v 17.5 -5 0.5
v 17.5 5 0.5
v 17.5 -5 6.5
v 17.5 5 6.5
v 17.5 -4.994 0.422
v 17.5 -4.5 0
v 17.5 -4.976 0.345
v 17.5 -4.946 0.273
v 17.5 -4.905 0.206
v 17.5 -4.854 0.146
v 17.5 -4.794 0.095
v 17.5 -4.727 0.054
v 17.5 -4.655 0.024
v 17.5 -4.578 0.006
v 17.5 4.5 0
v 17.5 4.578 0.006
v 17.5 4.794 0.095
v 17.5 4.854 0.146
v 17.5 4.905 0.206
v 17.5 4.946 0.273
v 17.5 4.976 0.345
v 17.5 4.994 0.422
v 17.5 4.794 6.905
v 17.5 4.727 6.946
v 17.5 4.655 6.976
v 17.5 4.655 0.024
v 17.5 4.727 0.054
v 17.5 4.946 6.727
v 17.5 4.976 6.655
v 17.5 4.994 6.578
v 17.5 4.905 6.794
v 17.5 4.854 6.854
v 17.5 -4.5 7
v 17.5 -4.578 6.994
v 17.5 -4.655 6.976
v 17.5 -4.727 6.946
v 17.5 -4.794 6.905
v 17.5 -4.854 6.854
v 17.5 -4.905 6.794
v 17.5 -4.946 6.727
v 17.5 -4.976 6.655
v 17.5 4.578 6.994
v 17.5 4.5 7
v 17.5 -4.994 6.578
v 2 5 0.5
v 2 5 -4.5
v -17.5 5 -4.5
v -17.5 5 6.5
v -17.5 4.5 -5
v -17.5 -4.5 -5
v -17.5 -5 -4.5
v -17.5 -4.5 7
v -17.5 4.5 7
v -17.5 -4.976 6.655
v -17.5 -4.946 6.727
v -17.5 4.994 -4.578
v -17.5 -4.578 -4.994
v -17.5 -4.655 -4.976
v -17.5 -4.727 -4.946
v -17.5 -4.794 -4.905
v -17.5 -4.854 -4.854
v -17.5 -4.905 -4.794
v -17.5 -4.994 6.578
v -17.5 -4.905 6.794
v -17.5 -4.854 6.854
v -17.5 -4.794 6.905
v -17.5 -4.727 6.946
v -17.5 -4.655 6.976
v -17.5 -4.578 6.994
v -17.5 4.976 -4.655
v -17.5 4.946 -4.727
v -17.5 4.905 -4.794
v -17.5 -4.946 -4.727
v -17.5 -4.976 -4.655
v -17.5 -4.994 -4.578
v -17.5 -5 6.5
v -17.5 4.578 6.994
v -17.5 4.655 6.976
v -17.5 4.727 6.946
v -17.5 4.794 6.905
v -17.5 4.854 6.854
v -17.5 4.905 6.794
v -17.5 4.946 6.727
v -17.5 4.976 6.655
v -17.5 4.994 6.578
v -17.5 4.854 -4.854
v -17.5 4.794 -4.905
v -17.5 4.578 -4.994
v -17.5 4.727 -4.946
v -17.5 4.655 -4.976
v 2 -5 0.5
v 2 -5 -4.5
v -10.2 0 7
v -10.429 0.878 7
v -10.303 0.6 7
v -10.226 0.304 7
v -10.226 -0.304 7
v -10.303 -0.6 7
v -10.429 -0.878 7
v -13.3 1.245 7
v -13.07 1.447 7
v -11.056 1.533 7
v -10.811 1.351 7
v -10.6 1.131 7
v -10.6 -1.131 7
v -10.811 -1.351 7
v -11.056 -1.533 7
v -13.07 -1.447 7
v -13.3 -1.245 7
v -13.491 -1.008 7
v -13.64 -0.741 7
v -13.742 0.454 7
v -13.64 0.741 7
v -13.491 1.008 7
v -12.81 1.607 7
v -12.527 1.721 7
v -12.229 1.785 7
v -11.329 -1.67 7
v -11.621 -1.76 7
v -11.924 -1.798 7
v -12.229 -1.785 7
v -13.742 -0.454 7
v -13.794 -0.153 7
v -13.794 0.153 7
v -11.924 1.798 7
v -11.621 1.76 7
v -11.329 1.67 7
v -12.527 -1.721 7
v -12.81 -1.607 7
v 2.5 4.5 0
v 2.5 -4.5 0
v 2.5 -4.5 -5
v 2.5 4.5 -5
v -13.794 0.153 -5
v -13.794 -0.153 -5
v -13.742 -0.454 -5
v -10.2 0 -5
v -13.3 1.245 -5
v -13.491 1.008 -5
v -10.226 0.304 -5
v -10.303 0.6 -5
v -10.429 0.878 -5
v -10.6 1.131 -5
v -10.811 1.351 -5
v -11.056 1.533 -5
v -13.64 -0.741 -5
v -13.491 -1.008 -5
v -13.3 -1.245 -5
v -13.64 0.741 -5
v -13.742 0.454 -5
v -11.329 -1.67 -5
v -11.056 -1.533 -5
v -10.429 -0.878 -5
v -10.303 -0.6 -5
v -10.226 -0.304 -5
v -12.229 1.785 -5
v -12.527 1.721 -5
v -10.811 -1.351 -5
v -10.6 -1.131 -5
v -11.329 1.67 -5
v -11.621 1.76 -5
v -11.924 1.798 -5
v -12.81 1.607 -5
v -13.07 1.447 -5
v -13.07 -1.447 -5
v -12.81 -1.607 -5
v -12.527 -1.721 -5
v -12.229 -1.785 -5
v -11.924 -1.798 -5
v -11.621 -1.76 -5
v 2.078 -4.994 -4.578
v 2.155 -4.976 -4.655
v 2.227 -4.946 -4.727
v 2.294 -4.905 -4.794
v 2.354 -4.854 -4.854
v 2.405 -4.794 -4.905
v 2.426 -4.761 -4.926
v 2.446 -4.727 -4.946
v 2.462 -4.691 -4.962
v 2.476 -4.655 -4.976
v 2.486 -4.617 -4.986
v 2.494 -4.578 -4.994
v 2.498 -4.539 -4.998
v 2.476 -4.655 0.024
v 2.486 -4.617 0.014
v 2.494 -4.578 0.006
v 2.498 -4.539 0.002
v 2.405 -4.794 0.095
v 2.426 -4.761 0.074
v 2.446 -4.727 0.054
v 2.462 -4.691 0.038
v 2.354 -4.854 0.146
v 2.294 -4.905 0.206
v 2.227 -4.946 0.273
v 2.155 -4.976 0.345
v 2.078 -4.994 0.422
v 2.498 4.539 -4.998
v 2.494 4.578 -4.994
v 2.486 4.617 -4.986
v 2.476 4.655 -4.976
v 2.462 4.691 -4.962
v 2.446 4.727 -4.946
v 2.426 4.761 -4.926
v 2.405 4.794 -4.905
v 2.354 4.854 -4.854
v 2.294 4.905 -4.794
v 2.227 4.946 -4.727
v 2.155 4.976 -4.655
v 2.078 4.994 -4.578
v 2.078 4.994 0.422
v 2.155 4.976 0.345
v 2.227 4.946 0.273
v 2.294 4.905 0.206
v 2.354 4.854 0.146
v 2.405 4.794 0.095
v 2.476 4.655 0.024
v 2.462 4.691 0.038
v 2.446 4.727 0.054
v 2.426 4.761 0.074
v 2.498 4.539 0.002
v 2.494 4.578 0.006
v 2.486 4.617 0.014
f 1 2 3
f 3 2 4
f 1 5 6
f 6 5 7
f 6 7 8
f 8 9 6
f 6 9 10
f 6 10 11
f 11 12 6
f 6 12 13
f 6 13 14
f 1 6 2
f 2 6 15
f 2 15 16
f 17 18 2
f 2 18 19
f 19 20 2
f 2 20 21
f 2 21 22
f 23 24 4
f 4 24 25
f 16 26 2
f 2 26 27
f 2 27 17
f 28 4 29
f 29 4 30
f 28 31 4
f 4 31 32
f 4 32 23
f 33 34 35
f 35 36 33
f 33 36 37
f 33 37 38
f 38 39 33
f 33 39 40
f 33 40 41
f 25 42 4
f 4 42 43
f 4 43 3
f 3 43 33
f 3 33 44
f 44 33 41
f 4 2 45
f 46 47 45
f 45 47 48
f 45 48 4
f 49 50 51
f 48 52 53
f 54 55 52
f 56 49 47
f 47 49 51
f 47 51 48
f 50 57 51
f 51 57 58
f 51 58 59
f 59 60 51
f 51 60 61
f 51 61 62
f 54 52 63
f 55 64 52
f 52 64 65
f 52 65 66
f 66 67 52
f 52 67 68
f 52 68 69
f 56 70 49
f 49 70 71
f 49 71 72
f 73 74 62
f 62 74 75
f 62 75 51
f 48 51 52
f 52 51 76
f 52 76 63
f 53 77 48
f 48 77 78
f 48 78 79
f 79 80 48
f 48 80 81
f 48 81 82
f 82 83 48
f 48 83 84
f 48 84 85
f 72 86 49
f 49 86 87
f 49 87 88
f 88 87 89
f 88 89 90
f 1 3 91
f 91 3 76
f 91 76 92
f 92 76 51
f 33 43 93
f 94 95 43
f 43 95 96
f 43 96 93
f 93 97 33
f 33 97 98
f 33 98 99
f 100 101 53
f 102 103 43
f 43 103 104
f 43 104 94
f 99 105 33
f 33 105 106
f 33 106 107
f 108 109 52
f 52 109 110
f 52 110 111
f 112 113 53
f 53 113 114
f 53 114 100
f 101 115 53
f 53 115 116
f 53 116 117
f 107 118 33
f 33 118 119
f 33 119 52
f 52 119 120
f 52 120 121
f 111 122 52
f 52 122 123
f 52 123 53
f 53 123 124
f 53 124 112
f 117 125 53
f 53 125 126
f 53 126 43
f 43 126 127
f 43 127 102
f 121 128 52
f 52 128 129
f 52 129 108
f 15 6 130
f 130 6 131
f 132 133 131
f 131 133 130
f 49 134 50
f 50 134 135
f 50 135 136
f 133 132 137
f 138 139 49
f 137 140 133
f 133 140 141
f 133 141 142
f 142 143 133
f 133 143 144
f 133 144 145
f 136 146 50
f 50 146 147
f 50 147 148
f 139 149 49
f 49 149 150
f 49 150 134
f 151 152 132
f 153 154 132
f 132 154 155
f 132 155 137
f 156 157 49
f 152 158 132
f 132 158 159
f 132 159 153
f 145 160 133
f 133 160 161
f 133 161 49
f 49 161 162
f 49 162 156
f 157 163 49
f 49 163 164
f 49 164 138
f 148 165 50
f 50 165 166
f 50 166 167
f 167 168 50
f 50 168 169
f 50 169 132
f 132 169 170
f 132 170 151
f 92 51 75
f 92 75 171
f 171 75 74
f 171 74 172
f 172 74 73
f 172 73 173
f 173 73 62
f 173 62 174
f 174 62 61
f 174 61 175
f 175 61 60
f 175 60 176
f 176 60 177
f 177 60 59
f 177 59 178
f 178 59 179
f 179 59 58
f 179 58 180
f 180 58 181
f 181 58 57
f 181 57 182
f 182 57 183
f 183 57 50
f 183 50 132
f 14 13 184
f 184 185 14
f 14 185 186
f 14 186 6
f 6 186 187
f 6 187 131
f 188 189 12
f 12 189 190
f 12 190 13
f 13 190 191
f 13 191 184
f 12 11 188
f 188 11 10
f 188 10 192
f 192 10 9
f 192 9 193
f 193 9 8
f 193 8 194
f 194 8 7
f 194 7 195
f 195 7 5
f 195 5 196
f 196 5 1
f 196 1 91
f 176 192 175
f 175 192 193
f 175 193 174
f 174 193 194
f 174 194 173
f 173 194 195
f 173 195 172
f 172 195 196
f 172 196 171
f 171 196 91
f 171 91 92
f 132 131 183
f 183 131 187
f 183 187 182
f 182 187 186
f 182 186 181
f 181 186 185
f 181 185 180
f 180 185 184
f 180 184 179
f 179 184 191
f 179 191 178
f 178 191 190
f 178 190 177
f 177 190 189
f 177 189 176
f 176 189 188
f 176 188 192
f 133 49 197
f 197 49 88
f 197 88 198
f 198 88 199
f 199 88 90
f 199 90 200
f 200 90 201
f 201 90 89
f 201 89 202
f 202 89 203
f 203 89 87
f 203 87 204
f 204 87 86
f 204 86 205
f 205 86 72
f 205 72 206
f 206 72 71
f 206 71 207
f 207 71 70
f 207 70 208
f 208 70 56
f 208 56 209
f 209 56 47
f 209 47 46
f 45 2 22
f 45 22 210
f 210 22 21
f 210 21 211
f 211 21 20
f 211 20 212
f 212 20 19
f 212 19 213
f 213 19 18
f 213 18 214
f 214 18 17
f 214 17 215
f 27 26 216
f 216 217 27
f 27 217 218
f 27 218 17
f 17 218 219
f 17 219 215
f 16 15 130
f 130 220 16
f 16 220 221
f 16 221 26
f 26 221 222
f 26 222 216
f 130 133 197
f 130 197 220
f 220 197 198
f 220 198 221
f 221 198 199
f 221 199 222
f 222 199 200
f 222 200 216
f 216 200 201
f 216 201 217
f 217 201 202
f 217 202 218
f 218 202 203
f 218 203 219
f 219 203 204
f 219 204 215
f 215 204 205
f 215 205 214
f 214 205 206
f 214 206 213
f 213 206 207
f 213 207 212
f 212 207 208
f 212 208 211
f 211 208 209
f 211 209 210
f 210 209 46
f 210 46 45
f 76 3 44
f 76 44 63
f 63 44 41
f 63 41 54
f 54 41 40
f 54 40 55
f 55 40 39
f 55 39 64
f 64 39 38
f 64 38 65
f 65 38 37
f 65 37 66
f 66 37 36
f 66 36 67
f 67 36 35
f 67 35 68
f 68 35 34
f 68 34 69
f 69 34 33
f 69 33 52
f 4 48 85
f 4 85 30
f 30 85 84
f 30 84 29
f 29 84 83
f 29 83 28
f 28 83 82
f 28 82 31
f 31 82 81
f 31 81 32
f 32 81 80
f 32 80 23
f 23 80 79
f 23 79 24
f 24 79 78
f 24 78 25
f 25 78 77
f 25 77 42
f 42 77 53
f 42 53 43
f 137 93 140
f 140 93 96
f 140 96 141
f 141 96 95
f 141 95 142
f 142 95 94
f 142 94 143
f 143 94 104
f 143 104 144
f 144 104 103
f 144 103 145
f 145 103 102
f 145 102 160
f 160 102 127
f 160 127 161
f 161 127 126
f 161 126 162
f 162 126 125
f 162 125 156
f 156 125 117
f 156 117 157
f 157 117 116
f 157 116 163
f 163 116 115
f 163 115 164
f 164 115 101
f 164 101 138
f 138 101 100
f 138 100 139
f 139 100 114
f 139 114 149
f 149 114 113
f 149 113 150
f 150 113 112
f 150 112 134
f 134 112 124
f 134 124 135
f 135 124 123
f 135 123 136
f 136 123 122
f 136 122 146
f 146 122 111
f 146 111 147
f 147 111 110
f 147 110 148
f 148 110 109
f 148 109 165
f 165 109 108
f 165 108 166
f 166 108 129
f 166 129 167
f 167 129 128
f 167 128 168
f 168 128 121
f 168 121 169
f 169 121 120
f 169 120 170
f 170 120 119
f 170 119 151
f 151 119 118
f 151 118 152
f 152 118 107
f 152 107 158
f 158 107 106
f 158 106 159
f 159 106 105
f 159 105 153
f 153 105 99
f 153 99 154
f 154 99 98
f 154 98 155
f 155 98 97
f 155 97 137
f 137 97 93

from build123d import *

# Parameters (mm, degrees)
SKETCH1_W                  = 35
SKETCH1_H                  = 10
BOSS_EXTRUDE1_DEPTH        = 7
SKETCH2_W                  = 20
SKETCH2_H                  = 10
BOSS_EXTRUDE2_DEPTH        = 5
FILLET1_R                  = 0.5
F_3_6_3_6_DIAMETER_HOLE1_D = 3.6


with BuildPart() as part:
    # Sketch1 → Boss-Extrude1 (new body)
    with BuildSketch(Plane.XY):
        Rectangle(SKETCH1_W, SKETCH1_H)
    extrude(amount=BOSS_EXTRUDE1_DEPTH)

    # Sketch2 → Boss-Extrude2 (add)
    with BuildSketch(Plane(origin=(0, 0, 0), x_dir=(-1, 0, 0), z_dir=(0, 0, -1))):
        with Locations((7.5, 0)):
            Rectangle(SKETCH2_W, SKETCH2_H)
    extrude(amount=BOSS_EXTRUDE2_DEPTH)

    # Fillet1
    fillet1_edges = [part.edges().sort_by_distance(p)[0] for p in [
        (10, -5, 0),
        (2.5, 5, -2.5),
        (2.5, -5, -2.5),
        (0, -5, 7),
        (-7.5, 5, -5),
        (-7.5, -5, -5),
        (10, 5, 0),
        (0, 5, 7),
    ]]
    fillet(fillet1_edges, radius=FILLET1_R)

    # Ø3.6 (3.6) Diameter Hole1 (through all)
    with Locations(Plane(origin=(-12, 0, 7), x_dir=(1, 0, 0), z_dir=(0, 0, 1))):
        with Locations((0, 0)):
            Hole(F_3_6_3_6_DIAMETER_HOLE1_D / 2)


solid = part.part
